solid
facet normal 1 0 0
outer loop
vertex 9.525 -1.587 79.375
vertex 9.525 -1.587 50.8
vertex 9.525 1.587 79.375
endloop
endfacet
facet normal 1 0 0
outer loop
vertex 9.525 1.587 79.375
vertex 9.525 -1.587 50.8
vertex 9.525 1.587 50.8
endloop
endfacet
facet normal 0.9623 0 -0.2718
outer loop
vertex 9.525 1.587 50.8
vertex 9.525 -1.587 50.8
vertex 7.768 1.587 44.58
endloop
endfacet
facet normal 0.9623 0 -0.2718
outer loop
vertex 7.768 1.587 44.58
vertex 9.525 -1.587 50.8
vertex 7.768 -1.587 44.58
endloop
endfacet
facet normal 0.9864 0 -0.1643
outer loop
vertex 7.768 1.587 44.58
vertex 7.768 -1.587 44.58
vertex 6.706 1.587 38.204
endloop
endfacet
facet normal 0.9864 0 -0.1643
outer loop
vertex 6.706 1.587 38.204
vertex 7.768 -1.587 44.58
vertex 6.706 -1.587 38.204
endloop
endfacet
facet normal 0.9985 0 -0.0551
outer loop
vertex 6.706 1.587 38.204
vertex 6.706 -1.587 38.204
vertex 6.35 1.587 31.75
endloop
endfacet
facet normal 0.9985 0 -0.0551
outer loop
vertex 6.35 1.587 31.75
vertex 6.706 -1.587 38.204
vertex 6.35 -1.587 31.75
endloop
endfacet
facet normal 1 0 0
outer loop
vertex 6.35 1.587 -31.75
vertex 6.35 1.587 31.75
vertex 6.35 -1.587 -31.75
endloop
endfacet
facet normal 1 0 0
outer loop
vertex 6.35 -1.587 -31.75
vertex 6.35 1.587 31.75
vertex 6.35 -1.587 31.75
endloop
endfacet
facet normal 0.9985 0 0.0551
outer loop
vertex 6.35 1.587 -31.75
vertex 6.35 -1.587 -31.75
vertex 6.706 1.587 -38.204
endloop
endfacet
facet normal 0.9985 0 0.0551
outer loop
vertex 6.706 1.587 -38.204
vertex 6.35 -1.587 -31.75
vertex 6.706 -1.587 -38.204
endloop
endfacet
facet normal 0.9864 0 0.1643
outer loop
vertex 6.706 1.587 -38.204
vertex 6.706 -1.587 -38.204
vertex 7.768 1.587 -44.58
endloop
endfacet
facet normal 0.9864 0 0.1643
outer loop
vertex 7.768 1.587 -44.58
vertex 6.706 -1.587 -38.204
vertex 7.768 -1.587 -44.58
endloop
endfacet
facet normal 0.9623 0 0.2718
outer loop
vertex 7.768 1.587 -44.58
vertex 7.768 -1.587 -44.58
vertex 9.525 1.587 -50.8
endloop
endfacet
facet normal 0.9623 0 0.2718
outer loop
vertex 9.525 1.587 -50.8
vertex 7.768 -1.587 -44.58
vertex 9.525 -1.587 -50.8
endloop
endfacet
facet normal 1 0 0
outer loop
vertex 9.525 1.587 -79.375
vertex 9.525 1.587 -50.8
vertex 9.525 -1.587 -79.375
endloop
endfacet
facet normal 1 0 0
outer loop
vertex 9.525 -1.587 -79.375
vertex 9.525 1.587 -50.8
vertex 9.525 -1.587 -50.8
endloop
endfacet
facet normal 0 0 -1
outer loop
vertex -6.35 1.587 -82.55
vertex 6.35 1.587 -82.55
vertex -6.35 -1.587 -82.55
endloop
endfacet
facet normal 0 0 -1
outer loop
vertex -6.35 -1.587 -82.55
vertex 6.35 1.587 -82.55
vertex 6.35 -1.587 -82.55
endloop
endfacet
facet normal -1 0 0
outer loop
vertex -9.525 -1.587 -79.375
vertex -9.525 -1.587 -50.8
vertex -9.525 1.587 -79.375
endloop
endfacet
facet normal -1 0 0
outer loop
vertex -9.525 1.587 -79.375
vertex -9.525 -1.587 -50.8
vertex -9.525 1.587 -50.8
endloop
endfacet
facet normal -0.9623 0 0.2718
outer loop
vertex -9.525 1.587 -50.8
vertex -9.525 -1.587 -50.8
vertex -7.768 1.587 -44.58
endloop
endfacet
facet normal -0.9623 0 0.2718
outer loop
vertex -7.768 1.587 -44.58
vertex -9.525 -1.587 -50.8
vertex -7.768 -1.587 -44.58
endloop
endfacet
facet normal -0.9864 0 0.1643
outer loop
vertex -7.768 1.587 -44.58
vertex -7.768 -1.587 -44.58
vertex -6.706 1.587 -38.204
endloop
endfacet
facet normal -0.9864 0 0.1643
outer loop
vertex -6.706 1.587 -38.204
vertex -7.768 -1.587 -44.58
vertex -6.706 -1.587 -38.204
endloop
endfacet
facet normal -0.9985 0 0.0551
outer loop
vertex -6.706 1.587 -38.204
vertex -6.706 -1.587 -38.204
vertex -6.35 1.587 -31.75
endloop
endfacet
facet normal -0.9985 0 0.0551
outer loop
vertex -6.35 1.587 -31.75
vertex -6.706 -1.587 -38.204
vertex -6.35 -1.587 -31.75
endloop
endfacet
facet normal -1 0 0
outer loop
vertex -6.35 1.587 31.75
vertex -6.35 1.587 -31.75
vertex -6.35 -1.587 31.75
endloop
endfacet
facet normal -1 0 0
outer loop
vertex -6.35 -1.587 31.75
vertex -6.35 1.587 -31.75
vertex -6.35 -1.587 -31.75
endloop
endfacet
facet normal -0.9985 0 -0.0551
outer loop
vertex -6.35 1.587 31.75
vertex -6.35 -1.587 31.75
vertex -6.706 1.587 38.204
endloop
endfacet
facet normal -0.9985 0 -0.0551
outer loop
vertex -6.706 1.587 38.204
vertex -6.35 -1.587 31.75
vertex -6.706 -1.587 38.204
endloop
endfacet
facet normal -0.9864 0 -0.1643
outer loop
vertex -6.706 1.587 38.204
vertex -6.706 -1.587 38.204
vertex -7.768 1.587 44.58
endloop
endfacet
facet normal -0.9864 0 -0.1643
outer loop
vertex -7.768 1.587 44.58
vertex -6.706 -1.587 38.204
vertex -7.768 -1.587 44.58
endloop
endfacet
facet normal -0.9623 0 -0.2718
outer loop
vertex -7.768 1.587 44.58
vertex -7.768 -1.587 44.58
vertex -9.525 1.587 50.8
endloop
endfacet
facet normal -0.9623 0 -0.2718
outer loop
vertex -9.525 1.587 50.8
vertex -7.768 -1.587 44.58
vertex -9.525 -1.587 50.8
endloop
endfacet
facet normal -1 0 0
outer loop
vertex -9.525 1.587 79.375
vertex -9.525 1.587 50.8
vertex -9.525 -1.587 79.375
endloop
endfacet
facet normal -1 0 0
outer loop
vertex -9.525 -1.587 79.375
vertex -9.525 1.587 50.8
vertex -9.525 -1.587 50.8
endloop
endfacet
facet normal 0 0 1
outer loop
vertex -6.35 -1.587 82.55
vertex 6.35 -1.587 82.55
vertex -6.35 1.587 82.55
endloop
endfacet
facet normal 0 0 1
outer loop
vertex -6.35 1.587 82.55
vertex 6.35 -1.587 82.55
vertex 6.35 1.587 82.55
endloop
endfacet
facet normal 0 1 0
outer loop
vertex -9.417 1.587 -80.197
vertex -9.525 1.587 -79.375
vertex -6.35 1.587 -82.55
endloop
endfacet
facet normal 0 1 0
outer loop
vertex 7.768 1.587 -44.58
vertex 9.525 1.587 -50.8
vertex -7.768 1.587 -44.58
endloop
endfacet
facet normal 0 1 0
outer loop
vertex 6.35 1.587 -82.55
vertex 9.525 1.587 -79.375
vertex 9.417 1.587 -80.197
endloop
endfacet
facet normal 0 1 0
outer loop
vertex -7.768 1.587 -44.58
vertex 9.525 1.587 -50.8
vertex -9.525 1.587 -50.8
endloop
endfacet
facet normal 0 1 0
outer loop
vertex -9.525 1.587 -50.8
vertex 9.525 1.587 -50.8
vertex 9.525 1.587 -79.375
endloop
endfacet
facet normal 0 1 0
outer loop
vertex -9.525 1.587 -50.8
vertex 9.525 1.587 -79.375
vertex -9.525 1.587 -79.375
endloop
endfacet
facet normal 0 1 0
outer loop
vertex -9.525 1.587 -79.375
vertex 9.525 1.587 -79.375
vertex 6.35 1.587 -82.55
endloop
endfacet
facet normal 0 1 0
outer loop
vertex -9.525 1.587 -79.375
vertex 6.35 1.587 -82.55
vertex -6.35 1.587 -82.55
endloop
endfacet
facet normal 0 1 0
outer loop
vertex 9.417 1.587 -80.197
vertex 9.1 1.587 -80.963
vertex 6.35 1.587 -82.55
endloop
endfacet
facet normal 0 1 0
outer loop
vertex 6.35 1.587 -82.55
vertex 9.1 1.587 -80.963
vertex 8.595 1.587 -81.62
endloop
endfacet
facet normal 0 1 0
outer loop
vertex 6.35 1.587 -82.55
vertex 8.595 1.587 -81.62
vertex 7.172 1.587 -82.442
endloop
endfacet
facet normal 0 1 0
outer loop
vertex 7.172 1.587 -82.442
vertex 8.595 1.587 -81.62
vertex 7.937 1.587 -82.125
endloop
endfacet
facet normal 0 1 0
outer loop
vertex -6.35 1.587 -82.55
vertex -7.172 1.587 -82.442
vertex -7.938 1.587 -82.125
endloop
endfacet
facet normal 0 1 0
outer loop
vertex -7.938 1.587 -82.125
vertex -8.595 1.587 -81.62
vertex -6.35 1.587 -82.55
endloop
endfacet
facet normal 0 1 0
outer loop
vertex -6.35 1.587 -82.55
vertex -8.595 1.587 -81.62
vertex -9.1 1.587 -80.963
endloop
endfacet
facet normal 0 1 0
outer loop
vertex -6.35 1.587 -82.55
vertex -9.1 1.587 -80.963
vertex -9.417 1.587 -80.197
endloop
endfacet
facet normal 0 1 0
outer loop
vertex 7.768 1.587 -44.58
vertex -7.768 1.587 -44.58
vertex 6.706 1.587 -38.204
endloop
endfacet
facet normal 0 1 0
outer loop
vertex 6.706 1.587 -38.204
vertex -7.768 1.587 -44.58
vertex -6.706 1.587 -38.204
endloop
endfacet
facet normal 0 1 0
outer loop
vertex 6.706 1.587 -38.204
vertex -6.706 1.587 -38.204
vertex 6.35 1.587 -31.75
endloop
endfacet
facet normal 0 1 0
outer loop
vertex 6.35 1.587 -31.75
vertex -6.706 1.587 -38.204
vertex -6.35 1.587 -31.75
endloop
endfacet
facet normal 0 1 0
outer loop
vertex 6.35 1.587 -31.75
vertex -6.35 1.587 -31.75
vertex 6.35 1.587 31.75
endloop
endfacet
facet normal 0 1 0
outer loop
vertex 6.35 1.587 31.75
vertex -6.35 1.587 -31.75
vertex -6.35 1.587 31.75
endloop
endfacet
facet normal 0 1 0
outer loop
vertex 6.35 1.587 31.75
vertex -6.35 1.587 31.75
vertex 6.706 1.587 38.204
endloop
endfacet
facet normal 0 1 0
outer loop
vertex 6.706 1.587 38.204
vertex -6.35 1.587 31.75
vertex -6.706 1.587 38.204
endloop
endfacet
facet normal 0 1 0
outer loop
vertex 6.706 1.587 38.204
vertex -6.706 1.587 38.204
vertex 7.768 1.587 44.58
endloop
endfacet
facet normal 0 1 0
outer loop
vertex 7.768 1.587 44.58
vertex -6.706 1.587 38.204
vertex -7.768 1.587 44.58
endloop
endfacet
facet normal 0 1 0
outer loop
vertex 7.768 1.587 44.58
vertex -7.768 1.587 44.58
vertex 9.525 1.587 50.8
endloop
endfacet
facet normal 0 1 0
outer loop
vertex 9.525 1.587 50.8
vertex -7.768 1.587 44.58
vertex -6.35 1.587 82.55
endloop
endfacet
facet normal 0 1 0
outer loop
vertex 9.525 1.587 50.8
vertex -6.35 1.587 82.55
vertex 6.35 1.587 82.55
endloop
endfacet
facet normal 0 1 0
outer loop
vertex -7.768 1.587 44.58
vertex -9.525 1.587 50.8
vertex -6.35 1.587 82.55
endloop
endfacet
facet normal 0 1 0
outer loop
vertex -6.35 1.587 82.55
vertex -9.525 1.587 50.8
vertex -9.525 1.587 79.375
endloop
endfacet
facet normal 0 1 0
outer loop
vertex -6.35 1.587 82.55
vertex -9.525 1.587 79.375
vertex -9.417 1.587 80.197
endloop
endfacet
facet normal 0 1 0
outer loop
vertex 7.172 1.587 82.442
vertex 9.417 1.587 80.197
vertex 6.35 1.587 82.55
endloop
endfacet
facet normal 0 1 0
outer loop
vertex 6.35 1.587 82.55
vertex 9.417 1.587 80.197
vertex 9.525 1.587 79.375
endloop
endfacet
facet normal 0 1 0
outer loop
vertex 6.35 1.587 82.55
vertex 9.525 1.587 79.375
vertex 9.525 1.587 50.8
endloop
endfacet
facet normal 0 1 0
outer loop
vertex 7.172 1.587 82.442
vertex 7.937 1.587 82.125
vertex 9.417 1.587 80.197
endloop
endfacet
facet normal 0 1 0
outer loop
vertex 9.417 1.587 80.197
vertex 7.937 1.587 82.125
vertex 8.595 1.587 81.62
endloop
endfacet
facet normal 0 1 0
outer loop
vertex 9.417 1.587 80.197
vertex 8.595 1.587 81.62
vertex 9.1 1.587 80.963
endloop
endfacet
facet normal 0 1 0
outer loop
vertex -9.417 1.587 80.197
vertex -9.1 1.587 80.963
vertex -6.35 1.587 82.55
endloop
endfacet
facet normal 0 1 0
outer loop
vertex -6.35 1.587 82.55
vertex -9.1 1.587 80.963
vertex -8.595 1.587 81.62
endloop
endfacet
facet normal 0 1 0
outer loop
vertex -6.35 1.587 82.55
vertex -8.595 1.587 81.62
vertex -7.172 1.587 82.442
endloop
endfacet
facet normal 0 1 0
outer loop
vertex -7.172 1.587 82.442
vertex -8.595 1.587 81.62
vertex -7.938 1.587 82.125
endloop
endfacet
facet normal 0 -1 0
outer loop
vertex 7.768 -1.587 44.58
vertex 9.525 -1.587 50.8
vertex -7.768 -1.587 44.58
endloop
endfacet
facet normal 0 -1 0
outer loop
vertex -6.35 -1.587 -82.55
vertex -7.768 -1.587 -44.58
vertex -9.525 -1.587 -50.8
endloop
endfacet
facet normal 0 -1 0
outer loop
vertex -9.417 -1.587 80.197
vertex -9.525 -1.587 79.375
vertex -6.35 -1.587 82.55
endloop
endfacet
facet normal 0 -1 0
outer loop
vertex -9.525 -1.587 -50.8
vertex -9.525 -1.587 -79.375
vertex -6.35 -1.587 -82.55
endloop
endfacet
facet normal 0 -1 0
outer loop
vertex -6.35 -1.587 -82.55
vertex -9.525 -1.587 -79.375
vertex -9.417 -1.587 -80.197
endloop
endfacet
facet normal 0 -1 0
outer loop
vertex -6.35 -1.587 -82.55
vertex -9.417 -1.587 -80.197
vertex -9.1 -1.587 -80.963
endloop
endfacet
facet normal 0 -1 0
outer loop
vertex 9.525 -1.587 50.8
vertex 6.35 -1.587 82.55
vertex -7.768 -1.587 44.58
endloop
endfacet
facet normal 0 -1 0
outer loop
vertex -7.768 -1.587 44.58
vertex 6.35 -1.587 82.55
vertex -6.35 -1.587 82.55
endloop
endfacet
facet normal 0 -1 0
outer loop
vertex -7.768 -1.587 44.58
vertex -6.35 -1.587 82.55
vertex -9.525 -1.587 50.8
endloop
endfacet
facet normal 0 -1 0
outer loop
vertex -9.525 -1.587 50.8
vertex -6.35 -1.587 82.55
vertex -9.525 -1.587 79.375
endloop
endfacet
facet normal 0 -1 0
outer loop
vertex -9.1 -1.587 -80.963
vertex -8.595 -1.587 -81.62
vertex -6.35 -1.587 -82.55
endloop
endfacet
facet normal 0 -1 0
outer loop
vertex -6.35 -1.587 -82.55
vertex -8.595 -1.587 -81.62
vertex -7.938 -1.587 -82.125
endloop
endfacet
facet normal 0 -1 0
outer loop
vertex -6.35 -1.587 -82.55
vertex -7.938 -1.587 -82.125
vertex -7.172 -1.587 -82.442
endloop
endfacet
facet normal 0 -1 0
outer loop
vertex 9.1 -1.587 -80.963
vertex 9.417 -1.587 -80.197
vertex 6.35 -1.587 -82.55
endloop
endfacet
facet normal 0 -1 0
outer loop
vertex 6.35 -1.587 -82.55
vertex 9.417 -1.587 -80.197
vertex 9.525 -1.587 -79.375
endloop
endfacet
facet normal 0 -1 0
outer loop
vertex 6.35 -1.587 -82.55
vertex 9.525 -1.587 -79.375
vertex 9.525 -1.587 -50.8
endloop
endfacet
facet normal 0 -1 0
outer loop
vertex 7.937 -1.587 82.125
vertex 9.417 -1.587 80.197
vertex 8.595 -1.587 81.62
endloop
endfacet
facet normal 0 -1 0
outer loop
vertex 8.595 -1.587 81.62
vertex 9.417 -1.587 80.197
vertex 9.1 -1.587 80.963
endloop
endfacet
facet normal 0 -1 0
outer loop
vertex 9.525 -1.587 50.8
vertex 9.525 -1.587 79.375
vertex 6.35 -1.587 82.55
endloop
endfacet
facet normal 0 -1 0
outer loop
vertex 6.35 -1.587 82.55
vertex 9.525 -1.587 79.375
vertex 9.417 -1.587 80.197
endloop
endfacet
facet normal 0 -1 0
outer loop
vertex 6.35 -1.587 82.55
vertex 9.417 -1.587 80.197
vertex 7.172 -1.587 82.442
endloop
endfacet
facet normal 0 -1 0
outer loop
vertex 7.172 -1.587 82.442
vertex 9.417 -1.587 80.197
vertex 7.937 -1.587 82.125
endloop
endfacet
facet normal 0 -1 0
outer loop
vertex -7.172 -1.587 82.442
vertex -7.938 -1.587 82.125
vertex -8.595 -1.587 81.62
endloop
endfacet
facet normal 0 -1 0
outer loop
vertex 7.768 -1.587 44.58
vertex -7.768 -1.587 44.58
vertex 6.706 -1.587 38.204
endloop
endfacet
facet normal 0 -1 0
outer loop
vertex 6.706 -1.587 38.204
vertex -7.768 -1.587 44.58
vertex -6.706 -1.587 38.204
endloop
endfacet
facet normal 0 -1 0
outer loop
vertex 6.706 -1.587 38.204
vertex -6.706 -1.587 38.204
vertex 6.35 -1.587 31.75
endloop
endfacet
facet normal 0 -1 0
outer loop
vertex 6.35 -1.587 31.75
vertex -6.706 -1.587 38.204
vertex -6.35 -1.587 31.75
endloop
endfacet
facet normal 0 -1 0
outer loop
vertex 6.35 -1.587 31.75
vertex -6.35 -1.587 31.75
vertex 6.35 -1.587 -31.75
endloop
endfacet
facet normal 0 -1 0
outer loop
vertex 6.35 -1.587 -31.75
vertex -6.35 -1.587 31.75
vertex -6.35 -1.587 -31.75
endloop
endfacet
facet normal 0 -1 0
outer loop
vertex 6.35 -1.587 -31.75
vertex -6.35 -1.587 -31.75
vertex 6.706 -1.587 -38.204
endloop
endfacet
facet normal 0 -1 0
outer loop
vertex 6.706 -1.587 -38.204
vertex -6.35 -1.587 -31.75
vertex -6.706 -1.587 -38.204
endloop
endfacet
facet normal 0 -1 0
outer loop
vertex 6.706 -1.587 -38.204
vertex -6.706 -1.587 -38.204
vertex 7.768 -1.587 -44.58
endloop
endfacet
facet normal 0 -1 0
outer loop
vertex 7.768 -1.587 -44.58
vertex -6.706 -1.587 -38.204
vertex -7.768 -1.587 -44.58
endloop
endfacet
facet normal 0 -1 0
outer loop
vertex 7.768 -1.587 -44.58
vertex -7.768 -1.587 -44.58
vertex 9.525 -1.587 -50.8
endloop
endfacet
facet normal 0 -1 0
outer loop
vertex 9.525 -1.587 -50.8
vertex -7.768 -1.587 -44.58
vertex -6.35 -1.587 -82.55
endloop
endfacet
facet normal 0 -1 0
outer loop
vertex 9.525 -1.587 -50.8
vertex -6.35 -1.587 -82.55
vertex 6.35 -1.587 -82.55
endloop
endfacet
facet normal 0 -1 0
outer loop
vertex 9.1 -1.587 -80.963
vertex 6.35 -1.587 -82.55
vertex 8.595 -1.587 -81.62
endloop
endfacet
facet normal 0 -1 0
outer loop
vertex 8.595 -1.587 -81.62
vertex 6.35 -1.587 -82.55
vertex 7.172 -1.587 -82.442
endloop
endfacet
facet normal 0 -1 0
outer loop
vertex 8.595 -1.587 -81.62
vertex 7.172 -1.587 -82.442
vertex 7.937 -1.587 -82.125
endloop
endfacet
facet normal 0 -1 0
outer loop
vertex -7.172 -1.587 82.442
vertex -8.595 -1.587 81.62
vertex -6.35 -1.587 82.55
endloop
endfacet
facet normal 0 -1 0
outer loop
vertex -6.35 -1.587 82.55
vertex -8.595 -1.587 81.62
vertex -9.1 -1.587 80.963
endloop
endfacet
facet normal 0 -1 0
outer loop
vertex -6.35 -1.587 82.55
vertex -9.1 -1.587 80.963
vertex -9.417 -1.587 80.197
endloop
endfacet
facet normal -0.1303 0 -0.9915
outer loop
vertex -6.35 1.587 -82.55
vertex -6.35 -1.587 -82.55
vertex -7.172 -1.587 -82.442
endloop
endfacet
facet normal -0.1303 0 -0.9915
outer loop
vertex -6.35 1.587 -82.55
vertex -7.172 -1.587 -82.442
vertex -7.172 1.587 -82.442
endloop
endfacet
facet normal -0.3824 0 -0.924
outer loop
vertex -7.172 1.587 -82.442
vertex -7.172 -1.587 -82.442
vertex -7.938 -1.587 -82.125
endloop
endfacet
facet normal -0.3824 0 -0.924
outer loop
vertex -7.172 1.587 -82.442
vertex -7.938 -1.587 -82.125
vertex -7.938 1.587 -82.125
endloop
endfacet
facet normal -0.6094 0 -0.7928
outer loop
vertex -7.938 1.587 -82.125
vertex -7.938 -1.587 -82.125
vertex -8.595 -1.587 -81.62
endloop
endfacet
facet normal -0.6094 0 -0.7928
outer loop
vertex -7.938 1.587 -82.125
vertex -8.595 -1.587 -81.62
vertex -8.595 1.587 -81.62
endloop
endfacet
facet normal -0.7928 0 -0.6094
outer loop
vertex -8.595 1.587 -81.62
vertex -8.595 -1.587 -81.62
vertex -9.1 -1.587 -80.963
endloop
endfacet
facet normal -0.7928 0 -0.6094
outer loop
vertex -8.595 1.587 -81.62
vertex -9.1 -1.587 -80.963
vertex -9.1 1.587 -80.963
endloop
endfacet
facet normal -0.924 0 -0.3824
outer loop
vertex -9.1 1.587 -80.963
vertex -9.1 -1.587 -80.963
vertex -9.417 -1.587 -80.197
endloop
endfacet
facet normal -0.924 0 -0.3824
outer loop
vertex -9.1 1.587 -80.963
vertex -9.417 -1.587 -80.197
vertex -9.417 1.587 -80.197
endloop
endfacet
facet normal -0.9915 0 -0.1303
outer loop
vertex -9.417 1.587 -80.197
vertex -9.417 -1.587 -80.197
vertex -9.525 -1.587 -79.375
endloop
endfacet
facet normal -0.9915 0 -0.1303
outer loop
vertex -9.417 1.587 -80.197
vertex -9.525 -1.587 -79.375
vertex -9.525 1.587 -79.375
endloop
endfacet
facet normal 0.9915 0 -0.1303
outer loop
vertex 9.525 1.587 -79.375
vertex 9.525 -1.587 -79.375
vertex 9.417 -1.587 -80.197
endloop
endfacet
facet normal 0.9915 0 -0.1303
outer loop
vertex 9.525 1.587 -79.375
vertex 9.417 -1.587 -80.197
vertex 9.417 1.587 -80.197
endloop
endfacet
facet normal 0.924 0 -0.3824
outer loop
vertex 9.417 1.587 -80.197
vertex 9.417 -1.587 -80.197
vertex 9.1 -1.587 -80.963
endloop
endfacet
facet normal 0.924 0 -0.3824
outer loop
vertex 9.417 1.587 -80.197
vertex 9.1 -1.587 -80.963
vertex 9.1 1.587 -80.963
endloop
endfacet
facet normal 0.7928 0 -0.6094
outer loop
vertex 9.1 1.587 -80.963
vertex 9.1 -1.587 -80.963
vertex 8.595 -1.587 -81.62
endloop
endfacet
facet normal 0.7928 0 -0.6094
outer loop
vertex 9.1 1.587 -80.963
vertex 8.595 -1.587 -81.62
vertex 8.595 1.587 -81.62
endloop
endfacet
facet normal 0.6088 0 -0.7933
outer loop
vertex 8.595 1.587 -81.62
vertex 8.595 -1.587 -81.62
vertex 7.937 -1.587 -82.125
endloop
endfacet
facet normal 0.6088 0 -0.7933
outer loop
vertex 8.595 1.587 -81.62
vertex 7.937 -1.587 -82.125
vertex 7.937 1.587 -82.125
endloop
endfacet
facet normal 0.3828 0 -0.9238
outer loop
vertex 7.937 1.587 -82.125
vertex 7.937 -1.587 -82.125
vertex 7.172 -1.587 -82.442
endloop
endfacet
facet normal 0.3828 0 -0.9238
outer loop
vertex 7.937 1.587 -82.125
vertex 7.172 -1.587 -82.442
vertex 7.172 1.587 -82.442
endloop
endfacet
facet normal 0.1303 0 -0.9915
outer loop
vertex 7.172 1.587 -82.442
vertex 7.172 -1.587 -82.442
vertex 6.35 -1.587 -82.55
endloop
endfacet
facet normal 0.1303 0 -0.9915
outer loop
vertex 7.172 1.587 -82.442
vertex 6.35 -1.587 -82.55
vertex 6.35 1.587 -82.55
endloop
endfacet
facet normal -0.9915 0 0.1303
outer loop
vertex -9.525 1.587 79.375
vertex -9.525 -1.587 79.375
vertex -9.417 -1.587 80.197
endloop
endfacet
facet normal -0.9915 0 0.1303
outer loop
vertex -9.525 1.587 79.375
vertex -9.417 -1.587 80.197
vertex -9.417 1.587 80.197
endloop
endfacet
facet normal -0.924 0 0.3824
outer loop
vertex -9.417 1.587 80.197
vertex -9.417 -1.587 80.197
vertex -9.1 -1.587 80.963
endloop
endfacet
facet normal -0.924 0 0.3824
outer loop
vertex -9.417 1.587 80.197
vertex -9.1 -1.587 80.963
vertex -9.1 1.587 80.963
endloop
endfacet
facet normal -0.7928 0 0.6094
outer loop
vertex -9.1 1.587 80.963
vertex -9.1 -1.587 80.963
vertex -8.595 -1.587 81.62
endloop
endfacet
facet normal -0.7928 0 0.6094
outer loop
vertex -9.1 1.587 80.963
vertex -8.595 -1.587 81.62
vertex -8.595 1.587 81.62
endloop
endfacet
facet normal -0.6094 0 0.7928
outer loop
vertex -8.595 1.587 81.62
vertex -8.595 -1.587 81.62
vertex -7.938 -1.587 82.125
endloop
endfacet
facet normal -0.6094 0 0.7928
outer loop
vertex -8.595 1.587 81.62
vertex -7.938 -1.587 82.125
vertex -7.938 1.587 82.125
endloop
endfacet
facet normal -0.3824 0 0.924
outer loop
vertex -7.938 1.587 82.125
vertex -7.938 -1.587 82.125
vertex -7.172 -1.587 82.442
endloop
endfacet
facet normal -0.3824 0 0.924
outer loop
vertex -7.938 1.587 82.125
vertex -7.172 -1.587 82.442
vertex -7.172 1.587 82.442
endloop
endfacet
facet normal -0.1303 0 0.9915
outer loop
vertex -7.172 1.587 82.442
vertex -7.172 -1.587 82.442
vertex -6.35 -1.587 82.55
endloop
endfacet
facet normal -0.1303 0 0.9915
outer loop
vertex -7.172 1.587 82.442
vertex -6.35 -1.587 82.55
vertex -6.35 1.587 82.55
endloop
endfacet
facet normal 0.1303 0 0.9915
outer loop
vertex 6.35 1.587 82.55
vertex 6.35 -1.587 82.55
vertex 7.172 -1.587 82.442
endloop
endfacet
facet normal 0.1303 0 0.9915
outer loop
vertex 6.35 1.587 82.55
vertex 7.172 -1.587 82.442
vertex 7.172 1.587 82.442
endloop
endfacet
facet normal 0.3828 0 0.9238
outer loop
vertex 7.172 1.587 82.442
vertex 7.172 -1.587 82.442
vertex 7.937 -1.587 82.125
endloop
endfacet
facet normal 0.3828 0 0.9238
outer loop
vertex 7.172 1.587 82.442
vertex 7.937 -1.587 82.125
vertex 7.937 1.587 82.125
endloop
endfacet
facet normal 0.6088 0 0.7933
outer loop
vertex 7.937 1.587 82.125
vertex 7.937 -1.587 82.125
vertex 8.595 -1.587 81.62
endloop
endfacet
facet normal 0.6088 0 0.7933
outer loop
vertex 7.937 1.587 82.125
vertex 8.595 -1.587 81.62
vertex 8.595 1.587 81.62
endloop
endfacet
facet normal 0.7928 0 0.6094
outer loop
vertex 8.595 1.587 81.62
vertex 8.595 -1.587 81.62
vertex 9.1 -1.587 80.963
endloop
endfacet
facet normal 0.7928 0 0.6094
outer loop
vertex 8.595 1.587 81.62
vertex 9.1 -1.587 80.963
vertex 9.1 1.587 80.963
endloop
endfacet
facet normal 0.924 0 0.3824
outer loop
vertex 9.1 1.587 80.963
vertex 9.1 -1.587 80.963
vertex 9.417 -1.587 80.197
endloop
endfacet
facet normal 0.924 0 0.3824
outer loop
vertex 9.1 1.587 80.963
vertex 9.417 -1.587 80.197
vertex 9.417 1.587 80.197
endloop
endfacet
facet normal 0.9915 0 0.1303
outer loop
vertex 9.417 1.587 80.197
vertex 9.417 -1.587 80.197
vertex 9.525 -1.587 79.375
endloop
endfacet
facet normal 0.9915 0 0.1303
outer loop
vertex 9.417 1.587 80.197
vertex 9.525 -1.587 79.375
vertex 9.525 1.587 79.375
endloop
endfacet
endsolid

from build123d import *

# Parameters (mm, degrees)
BOSS_EXTRUDE1_DEPTH = 1.5875
FILLET1_R           = 3.175


with BuildPart() as part:
    # Sketch1 → Boss-Extrude1 (new body, symmetric)
    with BuildSketch(Plane(origin=(0, 0, 0), x_dir=(1, 0, 0), z_dir=(0, 1, 0))):
        with BuildLine():
            Line((6.35, 31.75), (6.35, -31.75))
            ThreePointArc((6.35, -31.75), (7.149186899, -41.406385517), (9.525, -50.8))
            Line((9.525, -50.8), (9.525, -82.55))
            Line((9.525, -82.55), (-9.525, -82.55))
            Line((-9.525, -82.55), (-9.525, -50.8))
            ThreePointArc((-9.525, -50.8), (-7.149186899, -41.406385517), (-6.35, -31.75))
            Line((-6.35, -31.75), (-6.35, 31.75))
            ThreePointArc((-6.35, 31.75), (-7.149186899, 41.406385517), (-9.525, 50.8))
            Line((-9.525, 50.8), (-9.525, 82.55))
            Line((-9.525, 82.55), (9.525, 82.55))
            Line((9.525, 82.55), (9.525, 50.8))
            ThreePointArc((9.525, 50.8), (7.149186899, 41.406385517), (6.35, 31.75))
        make_face()
    extrude(amount=BOSS_EXTRUDE1_DEPTH, both=True)

    # Fillet1
    fillet1_edges = [part.edges().sort_by_distance(p)[0] for p in [
        (9.525, 0, 82.55),
        (-9.525, 0, 82.55),
        (-9.525, 0, -82.55),
        (9.525, 0, -82.55),
    ]]
    fillet(fillet1_edges, radius=FILLET1_R)


solid = part.part
